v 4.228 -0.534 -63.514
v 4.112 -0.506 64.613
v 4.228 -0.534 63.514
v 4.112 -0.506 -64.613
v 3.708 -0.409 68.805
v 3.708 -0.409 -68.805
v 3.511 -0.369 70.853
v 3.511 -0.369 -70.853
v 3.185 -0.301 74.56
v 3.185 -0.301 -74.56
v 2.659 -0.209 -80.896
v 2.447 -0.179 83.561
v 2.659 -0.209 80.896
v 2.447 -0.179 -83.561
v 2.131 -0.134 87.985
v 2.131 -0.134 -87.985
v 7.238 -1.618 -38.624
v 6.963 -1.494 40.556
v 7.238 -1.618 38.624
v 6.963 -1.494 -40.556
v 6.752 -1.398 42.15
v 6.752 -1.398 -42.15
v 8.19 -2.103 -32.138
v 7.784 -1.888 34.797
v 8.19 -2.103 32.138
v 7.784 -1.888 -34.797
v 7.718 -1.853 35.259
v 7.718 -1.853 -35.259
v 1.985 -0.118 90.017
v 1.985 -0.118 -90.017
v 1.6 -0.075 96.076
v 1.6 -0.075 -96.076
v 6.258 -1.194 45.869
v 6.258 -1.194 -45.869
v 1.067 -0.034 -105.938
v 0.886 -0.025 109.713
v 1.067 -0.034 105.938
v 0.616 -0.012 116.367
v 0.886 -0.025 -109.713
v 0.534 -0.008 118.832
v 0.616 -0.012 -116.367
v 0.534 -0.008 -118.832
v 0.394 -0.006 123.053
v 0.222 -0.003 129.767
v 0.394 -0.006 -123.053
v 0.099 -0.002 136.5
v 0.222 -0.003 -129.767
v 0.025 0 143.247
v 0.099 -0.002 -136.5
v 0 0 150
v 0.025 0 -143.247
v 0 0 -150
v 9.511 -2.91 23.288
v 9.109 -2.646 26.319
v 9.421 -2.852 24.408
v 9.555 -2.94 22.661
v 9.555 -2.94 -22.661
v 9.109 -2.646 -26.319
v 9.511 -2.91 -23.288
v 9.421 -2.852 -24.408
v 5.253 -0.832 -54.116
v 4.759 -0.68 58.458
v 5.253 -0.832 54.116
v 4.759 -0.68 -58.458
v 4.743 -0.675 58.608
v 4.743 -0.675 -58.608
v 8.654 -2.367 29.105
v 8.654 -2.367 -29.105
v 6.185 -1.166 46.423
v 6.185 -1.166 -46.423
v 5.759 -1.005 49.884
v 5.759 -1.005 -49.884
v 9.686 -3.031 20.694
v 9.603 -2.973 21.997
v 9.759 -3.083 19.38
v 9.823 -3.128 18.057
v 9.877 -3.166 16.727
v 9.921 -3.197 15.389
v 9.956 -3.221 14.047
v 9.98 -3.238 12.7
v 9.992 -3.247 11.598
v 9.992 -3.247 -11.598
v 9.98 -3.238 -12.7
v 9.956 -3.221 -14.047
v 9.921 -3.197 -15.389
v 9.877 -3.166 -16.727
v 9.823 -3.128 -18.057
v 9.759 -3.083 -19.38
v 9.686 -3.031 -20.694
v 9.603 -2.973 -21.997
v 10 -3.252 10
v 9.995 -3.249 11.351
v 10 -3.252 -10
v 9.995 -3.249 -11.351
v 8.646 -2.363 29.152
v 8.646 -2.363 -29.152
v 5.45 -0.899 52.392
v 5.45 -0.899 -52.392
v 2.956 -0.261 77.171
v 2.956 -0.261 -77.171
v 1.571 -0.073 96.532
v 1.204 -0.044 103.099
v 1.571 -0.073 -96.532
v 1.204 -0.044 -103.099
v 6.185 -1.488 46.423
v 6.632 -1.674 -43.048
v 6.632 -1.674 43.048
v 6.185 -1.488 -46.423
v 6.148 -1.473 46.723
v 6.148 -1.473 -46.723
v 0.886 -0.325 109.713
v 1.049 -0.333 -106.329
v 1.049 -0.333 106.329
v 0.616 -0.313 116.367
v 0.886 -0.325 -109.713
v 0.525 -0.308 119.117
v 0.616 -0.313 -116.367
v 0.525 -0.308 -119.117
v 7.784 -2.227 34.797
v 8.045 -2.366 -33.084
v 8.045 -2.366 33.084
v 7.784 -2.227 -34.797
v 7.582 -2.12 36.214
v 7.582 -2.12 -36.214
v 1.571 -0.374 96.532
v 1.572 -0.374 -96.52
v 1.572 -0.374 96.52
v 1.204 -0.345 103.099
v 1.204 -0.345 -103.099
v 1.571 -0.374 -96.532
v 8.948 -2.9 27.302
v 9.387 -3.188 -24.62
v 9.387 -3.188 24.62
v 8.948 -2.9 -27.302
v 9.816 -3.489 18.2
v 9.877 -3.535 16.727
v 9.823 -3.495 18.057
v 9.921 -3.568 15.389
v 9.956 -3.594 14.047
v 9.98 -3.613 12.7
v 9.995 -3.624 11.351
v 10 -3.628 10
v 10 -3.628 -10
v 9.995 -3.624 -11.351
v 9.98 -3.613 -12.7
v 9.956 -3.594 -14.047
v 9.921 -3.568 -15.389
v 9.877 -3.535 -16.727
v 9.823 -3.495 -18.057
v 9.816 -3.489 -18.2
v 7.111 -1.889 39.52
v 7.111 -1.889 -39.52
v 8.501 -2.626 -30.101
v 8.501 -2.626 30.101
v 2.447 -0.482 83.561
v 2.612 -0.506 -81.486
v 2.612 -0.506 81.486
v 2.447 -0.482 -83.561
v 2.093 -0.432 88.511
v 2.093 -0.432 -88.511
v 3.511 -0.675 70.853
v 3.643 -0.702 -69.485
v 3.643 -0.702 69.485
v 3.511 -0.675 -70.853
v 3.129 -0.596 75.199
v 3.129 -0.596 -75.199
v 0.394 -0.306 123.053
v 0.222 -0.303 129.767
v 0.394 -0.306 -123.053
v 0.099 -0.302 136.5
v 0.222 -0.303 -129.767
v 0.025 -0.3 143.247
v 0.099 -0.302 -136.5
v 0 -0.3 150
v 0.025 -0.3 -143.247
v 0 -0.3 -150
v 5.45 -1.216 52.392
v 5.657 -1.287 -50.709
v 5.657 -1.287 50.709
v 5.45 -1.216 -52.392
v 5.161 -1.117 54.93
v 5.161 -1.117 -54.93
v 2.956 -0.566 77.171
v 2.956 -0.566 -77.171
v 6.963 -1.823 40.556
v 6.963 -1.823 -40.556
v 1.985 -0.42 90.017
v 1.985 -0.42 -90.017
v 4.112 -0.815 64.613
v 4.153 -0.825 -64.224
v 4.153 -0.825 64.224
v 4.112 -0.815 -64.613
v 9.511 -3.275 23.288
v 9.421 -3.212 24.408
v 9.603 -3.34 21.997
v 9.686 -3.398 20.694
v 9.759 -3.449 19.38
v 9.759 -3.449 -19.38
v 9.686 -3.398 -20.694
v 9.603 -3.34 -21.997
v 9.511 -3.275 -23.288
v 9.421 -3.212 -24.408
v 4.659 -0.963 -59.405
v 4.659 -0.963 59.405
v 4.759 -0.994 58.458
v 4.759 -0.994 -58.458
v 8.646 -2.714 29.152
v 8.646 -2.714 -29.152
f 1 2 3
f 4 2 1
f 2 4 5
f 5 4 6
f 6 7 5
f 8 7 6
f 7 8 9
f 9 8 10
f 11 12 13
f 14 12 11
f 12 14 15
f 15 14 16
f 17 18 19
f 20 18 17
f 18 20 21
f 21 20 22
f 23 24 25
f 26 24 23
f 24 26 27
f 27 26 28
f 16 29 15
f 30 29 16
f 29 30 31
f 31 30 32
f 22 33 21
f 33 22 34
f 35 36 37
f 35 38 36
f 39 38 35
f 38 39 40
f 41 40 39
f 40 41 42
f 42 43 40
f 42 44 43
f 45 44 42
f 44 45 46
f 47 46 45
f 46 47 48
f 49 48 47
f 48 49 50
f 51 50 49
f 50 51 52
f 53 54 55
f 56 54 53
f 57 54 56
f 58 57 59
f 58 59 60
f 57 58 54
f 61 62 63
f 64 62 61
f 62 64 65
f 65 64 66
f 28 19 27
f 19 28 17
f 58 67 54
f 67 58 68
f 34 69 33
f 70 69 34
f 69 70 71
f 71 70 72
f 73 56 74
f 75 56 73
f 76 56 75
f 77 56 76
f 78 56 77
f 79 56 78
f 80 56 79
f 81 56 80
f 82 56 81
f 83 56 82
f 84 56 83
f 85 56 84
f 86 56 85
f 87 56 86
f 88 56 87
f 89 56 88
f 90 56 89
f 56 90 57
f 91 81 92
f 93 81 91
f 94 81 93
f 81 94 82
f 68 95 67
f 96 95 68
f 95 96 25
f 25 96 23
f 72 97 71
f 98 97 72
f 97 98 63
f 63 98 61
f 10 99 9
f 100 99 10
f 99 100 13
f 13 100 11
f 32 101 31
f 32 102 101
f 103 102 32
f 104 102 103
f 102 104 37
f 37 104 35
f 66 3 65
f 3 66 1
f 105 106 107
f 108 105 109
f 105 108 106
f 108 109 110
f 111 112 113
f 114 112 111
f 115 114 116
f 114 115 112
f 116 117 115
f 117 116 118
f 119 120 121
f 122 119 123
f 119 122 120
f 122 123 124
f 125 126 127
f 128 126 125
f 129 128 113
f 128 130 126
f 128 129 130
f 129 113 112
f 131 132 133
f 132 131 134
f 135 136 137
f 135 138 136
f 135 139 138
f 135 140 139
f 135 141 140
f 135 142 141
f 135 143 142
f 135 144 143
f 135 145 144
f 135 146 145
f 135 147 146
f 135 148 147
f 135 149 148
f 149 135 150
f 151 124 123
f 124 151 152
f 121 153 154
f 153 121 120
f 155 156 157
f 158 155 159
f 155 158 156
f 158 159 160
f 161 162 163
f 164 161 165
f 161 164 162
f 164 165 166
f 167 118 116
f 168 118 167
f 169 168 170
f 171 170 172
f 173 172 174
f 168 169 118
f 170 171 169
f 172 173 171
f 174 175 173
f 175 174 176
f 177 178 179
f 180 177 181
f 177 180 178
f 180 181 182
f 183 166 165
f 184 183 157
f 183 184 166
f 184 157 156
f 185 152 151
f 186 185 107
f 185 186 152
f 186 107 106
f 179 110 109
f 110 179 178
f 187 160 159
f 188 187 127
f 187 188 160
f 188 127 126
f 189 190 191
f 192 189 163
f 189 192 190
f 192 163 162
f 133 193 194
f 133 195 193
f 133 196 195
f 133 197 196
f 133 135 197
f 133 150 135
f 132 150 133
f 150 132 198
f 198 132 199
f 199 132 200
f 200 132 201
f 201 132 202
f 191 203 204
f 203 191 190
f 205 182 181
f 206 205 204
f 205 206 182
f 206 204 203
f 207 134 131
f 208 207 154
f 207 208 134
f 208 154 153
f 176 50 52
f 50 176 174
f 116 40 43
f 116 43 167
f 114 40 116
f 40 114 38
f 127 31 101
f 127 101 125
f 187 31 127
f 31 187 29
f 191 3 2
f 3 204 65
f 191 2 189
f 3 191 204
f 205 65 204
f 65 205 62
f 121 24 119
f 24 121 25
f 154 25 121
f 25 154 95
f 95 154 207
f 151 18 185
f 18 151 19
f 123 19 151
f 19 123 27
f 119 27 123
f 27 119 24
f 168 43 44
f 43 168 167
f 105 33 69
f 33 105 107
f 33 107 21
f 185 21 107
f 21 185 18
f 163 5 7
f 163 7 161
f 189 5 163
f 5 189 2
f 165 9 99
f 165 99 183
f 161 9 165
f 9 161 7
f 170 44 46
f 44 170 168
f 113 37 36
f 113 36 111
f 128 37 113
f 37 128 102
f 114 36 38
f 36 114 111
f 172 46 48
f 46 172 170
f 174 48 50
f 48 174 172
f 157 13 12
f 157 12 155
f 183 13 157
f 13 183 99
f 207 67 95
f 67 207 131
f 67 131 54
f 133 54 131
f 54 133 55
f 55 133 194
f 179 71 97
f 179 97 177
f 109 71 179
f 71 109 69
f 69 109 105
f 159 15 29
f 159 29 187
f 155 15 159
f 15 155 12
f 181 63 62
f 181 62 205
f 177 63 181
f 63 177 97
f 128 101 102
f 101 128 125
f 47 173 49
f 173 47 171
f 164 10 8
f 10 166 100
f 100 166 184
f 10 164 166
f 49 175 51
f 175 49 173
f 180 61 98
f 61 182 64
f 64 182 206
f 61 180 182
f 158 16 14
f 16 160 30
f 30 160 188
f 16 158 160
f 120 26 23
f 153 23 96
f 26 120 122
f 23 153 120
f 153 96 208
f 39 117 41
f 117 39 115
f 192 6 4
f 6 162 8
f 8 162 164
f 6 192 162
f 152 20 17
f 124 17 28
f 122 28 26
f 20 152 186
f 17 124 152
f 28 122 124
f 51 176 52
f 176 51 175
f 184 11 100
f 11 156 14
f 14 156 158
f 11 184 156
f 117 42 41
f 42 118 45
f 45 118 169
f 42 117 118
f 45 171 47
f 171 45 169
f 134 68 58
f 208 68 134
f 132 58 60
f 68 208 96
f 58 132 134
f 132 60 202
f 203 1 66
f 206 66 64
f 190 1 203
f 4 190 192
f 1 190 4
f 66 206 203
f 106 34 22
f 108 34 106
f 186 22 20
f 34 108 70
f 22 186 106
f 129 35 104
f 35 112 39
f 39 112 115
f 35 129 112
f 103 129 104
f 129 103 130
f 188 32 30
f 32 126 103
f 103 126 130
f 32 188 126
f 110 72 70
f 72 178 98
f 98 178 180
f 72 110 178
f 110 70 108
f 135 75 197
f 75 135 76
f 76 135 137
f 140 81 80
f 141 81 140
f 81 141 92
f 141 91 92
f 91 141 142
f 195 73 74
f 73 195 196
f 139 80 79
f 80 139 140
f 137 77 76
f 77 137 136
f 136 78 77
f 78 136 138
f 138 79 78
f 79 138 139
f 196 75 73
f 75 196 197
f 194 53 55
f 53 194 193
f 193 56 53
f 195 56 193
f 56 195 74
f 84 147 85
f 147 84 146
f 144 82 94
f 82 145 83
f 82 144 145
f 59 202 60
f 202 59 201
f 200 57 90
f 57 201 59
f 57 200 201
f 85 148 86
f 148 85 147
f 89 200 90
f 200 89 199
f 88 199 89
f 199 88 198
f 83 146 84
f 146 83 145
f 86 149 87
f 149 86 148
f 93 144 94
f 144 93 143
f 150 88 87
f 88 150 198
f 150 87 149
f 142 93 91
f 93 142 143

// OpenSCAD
$fn = 200;
// Parameters
eps = 0.1;
the_r = 17;
handle_width = 300;      // Width of handle
face_height = 30;         // Vertical height from cabinet surface
lip_radius = 6;           // Radius of the grip lip
thicckness = 0.3;

negative_r = 50;
negative_r_middle = 10;
middle_cuts_center = 20;
scala = 4.3;

module folded_sheet_handle() {
    intersection() {
        difference() {
            translate([0, -the_r, 0]) {
                // base shape:
                intersection() {
                    difference() {
                        cylinder(r = the_r, h = handle_width, center = true);
                        cylinder(r = the_r - thicckness, h = handle_width + eps, center = true);
                    }
                    translate([the_r / 2, the_r, 0]) {
                        cube([the_r, the_r, handle_width], center = true);
                    }
                }
            }
            // side cuts:
            union() {
                translate([negative_r, 0, handle_width / 2]) {
                    scale([1, 1, scala]) {
                        rotate([90, 0, 0]) {
                            cylinder(r = negative_r, h = handle_width);
                        }
                    }
                }
                translate([negative_r, 0, -handle_width / 2]) {
                    scale([1, 1, scala]) {
                        rotate([90, 0, 0]) {
                            cylinder(r = negative_r, h = handle_width);
                        }
                    }
                }
            }
        }
        // million cuts:
        union() {
            translate([0, 0, middle_cuts_center / 2]) {
                scale([1, 1, scala]) {
                    rotate([90, 0, 0]) {
                        cylinder(r = negative_r_middle, h = handle_width);
                    }
                }
            }
            translate([0, 0, -middle_cuts_center / 2]) {
                scale([1, 1, scala]) {
                    rotate([90, 0, 0]) {
                        cylinder(r = negative_r_middle, h = handle_width);
                    }
                }
            }
            cube([2 * negative_r_middle, handle_width, middle_cuts_center], center = true);
            cube([negative_r / 3, handle_width, handle_width], center = true);
        }
    }
}

folded_sheet_handle();
